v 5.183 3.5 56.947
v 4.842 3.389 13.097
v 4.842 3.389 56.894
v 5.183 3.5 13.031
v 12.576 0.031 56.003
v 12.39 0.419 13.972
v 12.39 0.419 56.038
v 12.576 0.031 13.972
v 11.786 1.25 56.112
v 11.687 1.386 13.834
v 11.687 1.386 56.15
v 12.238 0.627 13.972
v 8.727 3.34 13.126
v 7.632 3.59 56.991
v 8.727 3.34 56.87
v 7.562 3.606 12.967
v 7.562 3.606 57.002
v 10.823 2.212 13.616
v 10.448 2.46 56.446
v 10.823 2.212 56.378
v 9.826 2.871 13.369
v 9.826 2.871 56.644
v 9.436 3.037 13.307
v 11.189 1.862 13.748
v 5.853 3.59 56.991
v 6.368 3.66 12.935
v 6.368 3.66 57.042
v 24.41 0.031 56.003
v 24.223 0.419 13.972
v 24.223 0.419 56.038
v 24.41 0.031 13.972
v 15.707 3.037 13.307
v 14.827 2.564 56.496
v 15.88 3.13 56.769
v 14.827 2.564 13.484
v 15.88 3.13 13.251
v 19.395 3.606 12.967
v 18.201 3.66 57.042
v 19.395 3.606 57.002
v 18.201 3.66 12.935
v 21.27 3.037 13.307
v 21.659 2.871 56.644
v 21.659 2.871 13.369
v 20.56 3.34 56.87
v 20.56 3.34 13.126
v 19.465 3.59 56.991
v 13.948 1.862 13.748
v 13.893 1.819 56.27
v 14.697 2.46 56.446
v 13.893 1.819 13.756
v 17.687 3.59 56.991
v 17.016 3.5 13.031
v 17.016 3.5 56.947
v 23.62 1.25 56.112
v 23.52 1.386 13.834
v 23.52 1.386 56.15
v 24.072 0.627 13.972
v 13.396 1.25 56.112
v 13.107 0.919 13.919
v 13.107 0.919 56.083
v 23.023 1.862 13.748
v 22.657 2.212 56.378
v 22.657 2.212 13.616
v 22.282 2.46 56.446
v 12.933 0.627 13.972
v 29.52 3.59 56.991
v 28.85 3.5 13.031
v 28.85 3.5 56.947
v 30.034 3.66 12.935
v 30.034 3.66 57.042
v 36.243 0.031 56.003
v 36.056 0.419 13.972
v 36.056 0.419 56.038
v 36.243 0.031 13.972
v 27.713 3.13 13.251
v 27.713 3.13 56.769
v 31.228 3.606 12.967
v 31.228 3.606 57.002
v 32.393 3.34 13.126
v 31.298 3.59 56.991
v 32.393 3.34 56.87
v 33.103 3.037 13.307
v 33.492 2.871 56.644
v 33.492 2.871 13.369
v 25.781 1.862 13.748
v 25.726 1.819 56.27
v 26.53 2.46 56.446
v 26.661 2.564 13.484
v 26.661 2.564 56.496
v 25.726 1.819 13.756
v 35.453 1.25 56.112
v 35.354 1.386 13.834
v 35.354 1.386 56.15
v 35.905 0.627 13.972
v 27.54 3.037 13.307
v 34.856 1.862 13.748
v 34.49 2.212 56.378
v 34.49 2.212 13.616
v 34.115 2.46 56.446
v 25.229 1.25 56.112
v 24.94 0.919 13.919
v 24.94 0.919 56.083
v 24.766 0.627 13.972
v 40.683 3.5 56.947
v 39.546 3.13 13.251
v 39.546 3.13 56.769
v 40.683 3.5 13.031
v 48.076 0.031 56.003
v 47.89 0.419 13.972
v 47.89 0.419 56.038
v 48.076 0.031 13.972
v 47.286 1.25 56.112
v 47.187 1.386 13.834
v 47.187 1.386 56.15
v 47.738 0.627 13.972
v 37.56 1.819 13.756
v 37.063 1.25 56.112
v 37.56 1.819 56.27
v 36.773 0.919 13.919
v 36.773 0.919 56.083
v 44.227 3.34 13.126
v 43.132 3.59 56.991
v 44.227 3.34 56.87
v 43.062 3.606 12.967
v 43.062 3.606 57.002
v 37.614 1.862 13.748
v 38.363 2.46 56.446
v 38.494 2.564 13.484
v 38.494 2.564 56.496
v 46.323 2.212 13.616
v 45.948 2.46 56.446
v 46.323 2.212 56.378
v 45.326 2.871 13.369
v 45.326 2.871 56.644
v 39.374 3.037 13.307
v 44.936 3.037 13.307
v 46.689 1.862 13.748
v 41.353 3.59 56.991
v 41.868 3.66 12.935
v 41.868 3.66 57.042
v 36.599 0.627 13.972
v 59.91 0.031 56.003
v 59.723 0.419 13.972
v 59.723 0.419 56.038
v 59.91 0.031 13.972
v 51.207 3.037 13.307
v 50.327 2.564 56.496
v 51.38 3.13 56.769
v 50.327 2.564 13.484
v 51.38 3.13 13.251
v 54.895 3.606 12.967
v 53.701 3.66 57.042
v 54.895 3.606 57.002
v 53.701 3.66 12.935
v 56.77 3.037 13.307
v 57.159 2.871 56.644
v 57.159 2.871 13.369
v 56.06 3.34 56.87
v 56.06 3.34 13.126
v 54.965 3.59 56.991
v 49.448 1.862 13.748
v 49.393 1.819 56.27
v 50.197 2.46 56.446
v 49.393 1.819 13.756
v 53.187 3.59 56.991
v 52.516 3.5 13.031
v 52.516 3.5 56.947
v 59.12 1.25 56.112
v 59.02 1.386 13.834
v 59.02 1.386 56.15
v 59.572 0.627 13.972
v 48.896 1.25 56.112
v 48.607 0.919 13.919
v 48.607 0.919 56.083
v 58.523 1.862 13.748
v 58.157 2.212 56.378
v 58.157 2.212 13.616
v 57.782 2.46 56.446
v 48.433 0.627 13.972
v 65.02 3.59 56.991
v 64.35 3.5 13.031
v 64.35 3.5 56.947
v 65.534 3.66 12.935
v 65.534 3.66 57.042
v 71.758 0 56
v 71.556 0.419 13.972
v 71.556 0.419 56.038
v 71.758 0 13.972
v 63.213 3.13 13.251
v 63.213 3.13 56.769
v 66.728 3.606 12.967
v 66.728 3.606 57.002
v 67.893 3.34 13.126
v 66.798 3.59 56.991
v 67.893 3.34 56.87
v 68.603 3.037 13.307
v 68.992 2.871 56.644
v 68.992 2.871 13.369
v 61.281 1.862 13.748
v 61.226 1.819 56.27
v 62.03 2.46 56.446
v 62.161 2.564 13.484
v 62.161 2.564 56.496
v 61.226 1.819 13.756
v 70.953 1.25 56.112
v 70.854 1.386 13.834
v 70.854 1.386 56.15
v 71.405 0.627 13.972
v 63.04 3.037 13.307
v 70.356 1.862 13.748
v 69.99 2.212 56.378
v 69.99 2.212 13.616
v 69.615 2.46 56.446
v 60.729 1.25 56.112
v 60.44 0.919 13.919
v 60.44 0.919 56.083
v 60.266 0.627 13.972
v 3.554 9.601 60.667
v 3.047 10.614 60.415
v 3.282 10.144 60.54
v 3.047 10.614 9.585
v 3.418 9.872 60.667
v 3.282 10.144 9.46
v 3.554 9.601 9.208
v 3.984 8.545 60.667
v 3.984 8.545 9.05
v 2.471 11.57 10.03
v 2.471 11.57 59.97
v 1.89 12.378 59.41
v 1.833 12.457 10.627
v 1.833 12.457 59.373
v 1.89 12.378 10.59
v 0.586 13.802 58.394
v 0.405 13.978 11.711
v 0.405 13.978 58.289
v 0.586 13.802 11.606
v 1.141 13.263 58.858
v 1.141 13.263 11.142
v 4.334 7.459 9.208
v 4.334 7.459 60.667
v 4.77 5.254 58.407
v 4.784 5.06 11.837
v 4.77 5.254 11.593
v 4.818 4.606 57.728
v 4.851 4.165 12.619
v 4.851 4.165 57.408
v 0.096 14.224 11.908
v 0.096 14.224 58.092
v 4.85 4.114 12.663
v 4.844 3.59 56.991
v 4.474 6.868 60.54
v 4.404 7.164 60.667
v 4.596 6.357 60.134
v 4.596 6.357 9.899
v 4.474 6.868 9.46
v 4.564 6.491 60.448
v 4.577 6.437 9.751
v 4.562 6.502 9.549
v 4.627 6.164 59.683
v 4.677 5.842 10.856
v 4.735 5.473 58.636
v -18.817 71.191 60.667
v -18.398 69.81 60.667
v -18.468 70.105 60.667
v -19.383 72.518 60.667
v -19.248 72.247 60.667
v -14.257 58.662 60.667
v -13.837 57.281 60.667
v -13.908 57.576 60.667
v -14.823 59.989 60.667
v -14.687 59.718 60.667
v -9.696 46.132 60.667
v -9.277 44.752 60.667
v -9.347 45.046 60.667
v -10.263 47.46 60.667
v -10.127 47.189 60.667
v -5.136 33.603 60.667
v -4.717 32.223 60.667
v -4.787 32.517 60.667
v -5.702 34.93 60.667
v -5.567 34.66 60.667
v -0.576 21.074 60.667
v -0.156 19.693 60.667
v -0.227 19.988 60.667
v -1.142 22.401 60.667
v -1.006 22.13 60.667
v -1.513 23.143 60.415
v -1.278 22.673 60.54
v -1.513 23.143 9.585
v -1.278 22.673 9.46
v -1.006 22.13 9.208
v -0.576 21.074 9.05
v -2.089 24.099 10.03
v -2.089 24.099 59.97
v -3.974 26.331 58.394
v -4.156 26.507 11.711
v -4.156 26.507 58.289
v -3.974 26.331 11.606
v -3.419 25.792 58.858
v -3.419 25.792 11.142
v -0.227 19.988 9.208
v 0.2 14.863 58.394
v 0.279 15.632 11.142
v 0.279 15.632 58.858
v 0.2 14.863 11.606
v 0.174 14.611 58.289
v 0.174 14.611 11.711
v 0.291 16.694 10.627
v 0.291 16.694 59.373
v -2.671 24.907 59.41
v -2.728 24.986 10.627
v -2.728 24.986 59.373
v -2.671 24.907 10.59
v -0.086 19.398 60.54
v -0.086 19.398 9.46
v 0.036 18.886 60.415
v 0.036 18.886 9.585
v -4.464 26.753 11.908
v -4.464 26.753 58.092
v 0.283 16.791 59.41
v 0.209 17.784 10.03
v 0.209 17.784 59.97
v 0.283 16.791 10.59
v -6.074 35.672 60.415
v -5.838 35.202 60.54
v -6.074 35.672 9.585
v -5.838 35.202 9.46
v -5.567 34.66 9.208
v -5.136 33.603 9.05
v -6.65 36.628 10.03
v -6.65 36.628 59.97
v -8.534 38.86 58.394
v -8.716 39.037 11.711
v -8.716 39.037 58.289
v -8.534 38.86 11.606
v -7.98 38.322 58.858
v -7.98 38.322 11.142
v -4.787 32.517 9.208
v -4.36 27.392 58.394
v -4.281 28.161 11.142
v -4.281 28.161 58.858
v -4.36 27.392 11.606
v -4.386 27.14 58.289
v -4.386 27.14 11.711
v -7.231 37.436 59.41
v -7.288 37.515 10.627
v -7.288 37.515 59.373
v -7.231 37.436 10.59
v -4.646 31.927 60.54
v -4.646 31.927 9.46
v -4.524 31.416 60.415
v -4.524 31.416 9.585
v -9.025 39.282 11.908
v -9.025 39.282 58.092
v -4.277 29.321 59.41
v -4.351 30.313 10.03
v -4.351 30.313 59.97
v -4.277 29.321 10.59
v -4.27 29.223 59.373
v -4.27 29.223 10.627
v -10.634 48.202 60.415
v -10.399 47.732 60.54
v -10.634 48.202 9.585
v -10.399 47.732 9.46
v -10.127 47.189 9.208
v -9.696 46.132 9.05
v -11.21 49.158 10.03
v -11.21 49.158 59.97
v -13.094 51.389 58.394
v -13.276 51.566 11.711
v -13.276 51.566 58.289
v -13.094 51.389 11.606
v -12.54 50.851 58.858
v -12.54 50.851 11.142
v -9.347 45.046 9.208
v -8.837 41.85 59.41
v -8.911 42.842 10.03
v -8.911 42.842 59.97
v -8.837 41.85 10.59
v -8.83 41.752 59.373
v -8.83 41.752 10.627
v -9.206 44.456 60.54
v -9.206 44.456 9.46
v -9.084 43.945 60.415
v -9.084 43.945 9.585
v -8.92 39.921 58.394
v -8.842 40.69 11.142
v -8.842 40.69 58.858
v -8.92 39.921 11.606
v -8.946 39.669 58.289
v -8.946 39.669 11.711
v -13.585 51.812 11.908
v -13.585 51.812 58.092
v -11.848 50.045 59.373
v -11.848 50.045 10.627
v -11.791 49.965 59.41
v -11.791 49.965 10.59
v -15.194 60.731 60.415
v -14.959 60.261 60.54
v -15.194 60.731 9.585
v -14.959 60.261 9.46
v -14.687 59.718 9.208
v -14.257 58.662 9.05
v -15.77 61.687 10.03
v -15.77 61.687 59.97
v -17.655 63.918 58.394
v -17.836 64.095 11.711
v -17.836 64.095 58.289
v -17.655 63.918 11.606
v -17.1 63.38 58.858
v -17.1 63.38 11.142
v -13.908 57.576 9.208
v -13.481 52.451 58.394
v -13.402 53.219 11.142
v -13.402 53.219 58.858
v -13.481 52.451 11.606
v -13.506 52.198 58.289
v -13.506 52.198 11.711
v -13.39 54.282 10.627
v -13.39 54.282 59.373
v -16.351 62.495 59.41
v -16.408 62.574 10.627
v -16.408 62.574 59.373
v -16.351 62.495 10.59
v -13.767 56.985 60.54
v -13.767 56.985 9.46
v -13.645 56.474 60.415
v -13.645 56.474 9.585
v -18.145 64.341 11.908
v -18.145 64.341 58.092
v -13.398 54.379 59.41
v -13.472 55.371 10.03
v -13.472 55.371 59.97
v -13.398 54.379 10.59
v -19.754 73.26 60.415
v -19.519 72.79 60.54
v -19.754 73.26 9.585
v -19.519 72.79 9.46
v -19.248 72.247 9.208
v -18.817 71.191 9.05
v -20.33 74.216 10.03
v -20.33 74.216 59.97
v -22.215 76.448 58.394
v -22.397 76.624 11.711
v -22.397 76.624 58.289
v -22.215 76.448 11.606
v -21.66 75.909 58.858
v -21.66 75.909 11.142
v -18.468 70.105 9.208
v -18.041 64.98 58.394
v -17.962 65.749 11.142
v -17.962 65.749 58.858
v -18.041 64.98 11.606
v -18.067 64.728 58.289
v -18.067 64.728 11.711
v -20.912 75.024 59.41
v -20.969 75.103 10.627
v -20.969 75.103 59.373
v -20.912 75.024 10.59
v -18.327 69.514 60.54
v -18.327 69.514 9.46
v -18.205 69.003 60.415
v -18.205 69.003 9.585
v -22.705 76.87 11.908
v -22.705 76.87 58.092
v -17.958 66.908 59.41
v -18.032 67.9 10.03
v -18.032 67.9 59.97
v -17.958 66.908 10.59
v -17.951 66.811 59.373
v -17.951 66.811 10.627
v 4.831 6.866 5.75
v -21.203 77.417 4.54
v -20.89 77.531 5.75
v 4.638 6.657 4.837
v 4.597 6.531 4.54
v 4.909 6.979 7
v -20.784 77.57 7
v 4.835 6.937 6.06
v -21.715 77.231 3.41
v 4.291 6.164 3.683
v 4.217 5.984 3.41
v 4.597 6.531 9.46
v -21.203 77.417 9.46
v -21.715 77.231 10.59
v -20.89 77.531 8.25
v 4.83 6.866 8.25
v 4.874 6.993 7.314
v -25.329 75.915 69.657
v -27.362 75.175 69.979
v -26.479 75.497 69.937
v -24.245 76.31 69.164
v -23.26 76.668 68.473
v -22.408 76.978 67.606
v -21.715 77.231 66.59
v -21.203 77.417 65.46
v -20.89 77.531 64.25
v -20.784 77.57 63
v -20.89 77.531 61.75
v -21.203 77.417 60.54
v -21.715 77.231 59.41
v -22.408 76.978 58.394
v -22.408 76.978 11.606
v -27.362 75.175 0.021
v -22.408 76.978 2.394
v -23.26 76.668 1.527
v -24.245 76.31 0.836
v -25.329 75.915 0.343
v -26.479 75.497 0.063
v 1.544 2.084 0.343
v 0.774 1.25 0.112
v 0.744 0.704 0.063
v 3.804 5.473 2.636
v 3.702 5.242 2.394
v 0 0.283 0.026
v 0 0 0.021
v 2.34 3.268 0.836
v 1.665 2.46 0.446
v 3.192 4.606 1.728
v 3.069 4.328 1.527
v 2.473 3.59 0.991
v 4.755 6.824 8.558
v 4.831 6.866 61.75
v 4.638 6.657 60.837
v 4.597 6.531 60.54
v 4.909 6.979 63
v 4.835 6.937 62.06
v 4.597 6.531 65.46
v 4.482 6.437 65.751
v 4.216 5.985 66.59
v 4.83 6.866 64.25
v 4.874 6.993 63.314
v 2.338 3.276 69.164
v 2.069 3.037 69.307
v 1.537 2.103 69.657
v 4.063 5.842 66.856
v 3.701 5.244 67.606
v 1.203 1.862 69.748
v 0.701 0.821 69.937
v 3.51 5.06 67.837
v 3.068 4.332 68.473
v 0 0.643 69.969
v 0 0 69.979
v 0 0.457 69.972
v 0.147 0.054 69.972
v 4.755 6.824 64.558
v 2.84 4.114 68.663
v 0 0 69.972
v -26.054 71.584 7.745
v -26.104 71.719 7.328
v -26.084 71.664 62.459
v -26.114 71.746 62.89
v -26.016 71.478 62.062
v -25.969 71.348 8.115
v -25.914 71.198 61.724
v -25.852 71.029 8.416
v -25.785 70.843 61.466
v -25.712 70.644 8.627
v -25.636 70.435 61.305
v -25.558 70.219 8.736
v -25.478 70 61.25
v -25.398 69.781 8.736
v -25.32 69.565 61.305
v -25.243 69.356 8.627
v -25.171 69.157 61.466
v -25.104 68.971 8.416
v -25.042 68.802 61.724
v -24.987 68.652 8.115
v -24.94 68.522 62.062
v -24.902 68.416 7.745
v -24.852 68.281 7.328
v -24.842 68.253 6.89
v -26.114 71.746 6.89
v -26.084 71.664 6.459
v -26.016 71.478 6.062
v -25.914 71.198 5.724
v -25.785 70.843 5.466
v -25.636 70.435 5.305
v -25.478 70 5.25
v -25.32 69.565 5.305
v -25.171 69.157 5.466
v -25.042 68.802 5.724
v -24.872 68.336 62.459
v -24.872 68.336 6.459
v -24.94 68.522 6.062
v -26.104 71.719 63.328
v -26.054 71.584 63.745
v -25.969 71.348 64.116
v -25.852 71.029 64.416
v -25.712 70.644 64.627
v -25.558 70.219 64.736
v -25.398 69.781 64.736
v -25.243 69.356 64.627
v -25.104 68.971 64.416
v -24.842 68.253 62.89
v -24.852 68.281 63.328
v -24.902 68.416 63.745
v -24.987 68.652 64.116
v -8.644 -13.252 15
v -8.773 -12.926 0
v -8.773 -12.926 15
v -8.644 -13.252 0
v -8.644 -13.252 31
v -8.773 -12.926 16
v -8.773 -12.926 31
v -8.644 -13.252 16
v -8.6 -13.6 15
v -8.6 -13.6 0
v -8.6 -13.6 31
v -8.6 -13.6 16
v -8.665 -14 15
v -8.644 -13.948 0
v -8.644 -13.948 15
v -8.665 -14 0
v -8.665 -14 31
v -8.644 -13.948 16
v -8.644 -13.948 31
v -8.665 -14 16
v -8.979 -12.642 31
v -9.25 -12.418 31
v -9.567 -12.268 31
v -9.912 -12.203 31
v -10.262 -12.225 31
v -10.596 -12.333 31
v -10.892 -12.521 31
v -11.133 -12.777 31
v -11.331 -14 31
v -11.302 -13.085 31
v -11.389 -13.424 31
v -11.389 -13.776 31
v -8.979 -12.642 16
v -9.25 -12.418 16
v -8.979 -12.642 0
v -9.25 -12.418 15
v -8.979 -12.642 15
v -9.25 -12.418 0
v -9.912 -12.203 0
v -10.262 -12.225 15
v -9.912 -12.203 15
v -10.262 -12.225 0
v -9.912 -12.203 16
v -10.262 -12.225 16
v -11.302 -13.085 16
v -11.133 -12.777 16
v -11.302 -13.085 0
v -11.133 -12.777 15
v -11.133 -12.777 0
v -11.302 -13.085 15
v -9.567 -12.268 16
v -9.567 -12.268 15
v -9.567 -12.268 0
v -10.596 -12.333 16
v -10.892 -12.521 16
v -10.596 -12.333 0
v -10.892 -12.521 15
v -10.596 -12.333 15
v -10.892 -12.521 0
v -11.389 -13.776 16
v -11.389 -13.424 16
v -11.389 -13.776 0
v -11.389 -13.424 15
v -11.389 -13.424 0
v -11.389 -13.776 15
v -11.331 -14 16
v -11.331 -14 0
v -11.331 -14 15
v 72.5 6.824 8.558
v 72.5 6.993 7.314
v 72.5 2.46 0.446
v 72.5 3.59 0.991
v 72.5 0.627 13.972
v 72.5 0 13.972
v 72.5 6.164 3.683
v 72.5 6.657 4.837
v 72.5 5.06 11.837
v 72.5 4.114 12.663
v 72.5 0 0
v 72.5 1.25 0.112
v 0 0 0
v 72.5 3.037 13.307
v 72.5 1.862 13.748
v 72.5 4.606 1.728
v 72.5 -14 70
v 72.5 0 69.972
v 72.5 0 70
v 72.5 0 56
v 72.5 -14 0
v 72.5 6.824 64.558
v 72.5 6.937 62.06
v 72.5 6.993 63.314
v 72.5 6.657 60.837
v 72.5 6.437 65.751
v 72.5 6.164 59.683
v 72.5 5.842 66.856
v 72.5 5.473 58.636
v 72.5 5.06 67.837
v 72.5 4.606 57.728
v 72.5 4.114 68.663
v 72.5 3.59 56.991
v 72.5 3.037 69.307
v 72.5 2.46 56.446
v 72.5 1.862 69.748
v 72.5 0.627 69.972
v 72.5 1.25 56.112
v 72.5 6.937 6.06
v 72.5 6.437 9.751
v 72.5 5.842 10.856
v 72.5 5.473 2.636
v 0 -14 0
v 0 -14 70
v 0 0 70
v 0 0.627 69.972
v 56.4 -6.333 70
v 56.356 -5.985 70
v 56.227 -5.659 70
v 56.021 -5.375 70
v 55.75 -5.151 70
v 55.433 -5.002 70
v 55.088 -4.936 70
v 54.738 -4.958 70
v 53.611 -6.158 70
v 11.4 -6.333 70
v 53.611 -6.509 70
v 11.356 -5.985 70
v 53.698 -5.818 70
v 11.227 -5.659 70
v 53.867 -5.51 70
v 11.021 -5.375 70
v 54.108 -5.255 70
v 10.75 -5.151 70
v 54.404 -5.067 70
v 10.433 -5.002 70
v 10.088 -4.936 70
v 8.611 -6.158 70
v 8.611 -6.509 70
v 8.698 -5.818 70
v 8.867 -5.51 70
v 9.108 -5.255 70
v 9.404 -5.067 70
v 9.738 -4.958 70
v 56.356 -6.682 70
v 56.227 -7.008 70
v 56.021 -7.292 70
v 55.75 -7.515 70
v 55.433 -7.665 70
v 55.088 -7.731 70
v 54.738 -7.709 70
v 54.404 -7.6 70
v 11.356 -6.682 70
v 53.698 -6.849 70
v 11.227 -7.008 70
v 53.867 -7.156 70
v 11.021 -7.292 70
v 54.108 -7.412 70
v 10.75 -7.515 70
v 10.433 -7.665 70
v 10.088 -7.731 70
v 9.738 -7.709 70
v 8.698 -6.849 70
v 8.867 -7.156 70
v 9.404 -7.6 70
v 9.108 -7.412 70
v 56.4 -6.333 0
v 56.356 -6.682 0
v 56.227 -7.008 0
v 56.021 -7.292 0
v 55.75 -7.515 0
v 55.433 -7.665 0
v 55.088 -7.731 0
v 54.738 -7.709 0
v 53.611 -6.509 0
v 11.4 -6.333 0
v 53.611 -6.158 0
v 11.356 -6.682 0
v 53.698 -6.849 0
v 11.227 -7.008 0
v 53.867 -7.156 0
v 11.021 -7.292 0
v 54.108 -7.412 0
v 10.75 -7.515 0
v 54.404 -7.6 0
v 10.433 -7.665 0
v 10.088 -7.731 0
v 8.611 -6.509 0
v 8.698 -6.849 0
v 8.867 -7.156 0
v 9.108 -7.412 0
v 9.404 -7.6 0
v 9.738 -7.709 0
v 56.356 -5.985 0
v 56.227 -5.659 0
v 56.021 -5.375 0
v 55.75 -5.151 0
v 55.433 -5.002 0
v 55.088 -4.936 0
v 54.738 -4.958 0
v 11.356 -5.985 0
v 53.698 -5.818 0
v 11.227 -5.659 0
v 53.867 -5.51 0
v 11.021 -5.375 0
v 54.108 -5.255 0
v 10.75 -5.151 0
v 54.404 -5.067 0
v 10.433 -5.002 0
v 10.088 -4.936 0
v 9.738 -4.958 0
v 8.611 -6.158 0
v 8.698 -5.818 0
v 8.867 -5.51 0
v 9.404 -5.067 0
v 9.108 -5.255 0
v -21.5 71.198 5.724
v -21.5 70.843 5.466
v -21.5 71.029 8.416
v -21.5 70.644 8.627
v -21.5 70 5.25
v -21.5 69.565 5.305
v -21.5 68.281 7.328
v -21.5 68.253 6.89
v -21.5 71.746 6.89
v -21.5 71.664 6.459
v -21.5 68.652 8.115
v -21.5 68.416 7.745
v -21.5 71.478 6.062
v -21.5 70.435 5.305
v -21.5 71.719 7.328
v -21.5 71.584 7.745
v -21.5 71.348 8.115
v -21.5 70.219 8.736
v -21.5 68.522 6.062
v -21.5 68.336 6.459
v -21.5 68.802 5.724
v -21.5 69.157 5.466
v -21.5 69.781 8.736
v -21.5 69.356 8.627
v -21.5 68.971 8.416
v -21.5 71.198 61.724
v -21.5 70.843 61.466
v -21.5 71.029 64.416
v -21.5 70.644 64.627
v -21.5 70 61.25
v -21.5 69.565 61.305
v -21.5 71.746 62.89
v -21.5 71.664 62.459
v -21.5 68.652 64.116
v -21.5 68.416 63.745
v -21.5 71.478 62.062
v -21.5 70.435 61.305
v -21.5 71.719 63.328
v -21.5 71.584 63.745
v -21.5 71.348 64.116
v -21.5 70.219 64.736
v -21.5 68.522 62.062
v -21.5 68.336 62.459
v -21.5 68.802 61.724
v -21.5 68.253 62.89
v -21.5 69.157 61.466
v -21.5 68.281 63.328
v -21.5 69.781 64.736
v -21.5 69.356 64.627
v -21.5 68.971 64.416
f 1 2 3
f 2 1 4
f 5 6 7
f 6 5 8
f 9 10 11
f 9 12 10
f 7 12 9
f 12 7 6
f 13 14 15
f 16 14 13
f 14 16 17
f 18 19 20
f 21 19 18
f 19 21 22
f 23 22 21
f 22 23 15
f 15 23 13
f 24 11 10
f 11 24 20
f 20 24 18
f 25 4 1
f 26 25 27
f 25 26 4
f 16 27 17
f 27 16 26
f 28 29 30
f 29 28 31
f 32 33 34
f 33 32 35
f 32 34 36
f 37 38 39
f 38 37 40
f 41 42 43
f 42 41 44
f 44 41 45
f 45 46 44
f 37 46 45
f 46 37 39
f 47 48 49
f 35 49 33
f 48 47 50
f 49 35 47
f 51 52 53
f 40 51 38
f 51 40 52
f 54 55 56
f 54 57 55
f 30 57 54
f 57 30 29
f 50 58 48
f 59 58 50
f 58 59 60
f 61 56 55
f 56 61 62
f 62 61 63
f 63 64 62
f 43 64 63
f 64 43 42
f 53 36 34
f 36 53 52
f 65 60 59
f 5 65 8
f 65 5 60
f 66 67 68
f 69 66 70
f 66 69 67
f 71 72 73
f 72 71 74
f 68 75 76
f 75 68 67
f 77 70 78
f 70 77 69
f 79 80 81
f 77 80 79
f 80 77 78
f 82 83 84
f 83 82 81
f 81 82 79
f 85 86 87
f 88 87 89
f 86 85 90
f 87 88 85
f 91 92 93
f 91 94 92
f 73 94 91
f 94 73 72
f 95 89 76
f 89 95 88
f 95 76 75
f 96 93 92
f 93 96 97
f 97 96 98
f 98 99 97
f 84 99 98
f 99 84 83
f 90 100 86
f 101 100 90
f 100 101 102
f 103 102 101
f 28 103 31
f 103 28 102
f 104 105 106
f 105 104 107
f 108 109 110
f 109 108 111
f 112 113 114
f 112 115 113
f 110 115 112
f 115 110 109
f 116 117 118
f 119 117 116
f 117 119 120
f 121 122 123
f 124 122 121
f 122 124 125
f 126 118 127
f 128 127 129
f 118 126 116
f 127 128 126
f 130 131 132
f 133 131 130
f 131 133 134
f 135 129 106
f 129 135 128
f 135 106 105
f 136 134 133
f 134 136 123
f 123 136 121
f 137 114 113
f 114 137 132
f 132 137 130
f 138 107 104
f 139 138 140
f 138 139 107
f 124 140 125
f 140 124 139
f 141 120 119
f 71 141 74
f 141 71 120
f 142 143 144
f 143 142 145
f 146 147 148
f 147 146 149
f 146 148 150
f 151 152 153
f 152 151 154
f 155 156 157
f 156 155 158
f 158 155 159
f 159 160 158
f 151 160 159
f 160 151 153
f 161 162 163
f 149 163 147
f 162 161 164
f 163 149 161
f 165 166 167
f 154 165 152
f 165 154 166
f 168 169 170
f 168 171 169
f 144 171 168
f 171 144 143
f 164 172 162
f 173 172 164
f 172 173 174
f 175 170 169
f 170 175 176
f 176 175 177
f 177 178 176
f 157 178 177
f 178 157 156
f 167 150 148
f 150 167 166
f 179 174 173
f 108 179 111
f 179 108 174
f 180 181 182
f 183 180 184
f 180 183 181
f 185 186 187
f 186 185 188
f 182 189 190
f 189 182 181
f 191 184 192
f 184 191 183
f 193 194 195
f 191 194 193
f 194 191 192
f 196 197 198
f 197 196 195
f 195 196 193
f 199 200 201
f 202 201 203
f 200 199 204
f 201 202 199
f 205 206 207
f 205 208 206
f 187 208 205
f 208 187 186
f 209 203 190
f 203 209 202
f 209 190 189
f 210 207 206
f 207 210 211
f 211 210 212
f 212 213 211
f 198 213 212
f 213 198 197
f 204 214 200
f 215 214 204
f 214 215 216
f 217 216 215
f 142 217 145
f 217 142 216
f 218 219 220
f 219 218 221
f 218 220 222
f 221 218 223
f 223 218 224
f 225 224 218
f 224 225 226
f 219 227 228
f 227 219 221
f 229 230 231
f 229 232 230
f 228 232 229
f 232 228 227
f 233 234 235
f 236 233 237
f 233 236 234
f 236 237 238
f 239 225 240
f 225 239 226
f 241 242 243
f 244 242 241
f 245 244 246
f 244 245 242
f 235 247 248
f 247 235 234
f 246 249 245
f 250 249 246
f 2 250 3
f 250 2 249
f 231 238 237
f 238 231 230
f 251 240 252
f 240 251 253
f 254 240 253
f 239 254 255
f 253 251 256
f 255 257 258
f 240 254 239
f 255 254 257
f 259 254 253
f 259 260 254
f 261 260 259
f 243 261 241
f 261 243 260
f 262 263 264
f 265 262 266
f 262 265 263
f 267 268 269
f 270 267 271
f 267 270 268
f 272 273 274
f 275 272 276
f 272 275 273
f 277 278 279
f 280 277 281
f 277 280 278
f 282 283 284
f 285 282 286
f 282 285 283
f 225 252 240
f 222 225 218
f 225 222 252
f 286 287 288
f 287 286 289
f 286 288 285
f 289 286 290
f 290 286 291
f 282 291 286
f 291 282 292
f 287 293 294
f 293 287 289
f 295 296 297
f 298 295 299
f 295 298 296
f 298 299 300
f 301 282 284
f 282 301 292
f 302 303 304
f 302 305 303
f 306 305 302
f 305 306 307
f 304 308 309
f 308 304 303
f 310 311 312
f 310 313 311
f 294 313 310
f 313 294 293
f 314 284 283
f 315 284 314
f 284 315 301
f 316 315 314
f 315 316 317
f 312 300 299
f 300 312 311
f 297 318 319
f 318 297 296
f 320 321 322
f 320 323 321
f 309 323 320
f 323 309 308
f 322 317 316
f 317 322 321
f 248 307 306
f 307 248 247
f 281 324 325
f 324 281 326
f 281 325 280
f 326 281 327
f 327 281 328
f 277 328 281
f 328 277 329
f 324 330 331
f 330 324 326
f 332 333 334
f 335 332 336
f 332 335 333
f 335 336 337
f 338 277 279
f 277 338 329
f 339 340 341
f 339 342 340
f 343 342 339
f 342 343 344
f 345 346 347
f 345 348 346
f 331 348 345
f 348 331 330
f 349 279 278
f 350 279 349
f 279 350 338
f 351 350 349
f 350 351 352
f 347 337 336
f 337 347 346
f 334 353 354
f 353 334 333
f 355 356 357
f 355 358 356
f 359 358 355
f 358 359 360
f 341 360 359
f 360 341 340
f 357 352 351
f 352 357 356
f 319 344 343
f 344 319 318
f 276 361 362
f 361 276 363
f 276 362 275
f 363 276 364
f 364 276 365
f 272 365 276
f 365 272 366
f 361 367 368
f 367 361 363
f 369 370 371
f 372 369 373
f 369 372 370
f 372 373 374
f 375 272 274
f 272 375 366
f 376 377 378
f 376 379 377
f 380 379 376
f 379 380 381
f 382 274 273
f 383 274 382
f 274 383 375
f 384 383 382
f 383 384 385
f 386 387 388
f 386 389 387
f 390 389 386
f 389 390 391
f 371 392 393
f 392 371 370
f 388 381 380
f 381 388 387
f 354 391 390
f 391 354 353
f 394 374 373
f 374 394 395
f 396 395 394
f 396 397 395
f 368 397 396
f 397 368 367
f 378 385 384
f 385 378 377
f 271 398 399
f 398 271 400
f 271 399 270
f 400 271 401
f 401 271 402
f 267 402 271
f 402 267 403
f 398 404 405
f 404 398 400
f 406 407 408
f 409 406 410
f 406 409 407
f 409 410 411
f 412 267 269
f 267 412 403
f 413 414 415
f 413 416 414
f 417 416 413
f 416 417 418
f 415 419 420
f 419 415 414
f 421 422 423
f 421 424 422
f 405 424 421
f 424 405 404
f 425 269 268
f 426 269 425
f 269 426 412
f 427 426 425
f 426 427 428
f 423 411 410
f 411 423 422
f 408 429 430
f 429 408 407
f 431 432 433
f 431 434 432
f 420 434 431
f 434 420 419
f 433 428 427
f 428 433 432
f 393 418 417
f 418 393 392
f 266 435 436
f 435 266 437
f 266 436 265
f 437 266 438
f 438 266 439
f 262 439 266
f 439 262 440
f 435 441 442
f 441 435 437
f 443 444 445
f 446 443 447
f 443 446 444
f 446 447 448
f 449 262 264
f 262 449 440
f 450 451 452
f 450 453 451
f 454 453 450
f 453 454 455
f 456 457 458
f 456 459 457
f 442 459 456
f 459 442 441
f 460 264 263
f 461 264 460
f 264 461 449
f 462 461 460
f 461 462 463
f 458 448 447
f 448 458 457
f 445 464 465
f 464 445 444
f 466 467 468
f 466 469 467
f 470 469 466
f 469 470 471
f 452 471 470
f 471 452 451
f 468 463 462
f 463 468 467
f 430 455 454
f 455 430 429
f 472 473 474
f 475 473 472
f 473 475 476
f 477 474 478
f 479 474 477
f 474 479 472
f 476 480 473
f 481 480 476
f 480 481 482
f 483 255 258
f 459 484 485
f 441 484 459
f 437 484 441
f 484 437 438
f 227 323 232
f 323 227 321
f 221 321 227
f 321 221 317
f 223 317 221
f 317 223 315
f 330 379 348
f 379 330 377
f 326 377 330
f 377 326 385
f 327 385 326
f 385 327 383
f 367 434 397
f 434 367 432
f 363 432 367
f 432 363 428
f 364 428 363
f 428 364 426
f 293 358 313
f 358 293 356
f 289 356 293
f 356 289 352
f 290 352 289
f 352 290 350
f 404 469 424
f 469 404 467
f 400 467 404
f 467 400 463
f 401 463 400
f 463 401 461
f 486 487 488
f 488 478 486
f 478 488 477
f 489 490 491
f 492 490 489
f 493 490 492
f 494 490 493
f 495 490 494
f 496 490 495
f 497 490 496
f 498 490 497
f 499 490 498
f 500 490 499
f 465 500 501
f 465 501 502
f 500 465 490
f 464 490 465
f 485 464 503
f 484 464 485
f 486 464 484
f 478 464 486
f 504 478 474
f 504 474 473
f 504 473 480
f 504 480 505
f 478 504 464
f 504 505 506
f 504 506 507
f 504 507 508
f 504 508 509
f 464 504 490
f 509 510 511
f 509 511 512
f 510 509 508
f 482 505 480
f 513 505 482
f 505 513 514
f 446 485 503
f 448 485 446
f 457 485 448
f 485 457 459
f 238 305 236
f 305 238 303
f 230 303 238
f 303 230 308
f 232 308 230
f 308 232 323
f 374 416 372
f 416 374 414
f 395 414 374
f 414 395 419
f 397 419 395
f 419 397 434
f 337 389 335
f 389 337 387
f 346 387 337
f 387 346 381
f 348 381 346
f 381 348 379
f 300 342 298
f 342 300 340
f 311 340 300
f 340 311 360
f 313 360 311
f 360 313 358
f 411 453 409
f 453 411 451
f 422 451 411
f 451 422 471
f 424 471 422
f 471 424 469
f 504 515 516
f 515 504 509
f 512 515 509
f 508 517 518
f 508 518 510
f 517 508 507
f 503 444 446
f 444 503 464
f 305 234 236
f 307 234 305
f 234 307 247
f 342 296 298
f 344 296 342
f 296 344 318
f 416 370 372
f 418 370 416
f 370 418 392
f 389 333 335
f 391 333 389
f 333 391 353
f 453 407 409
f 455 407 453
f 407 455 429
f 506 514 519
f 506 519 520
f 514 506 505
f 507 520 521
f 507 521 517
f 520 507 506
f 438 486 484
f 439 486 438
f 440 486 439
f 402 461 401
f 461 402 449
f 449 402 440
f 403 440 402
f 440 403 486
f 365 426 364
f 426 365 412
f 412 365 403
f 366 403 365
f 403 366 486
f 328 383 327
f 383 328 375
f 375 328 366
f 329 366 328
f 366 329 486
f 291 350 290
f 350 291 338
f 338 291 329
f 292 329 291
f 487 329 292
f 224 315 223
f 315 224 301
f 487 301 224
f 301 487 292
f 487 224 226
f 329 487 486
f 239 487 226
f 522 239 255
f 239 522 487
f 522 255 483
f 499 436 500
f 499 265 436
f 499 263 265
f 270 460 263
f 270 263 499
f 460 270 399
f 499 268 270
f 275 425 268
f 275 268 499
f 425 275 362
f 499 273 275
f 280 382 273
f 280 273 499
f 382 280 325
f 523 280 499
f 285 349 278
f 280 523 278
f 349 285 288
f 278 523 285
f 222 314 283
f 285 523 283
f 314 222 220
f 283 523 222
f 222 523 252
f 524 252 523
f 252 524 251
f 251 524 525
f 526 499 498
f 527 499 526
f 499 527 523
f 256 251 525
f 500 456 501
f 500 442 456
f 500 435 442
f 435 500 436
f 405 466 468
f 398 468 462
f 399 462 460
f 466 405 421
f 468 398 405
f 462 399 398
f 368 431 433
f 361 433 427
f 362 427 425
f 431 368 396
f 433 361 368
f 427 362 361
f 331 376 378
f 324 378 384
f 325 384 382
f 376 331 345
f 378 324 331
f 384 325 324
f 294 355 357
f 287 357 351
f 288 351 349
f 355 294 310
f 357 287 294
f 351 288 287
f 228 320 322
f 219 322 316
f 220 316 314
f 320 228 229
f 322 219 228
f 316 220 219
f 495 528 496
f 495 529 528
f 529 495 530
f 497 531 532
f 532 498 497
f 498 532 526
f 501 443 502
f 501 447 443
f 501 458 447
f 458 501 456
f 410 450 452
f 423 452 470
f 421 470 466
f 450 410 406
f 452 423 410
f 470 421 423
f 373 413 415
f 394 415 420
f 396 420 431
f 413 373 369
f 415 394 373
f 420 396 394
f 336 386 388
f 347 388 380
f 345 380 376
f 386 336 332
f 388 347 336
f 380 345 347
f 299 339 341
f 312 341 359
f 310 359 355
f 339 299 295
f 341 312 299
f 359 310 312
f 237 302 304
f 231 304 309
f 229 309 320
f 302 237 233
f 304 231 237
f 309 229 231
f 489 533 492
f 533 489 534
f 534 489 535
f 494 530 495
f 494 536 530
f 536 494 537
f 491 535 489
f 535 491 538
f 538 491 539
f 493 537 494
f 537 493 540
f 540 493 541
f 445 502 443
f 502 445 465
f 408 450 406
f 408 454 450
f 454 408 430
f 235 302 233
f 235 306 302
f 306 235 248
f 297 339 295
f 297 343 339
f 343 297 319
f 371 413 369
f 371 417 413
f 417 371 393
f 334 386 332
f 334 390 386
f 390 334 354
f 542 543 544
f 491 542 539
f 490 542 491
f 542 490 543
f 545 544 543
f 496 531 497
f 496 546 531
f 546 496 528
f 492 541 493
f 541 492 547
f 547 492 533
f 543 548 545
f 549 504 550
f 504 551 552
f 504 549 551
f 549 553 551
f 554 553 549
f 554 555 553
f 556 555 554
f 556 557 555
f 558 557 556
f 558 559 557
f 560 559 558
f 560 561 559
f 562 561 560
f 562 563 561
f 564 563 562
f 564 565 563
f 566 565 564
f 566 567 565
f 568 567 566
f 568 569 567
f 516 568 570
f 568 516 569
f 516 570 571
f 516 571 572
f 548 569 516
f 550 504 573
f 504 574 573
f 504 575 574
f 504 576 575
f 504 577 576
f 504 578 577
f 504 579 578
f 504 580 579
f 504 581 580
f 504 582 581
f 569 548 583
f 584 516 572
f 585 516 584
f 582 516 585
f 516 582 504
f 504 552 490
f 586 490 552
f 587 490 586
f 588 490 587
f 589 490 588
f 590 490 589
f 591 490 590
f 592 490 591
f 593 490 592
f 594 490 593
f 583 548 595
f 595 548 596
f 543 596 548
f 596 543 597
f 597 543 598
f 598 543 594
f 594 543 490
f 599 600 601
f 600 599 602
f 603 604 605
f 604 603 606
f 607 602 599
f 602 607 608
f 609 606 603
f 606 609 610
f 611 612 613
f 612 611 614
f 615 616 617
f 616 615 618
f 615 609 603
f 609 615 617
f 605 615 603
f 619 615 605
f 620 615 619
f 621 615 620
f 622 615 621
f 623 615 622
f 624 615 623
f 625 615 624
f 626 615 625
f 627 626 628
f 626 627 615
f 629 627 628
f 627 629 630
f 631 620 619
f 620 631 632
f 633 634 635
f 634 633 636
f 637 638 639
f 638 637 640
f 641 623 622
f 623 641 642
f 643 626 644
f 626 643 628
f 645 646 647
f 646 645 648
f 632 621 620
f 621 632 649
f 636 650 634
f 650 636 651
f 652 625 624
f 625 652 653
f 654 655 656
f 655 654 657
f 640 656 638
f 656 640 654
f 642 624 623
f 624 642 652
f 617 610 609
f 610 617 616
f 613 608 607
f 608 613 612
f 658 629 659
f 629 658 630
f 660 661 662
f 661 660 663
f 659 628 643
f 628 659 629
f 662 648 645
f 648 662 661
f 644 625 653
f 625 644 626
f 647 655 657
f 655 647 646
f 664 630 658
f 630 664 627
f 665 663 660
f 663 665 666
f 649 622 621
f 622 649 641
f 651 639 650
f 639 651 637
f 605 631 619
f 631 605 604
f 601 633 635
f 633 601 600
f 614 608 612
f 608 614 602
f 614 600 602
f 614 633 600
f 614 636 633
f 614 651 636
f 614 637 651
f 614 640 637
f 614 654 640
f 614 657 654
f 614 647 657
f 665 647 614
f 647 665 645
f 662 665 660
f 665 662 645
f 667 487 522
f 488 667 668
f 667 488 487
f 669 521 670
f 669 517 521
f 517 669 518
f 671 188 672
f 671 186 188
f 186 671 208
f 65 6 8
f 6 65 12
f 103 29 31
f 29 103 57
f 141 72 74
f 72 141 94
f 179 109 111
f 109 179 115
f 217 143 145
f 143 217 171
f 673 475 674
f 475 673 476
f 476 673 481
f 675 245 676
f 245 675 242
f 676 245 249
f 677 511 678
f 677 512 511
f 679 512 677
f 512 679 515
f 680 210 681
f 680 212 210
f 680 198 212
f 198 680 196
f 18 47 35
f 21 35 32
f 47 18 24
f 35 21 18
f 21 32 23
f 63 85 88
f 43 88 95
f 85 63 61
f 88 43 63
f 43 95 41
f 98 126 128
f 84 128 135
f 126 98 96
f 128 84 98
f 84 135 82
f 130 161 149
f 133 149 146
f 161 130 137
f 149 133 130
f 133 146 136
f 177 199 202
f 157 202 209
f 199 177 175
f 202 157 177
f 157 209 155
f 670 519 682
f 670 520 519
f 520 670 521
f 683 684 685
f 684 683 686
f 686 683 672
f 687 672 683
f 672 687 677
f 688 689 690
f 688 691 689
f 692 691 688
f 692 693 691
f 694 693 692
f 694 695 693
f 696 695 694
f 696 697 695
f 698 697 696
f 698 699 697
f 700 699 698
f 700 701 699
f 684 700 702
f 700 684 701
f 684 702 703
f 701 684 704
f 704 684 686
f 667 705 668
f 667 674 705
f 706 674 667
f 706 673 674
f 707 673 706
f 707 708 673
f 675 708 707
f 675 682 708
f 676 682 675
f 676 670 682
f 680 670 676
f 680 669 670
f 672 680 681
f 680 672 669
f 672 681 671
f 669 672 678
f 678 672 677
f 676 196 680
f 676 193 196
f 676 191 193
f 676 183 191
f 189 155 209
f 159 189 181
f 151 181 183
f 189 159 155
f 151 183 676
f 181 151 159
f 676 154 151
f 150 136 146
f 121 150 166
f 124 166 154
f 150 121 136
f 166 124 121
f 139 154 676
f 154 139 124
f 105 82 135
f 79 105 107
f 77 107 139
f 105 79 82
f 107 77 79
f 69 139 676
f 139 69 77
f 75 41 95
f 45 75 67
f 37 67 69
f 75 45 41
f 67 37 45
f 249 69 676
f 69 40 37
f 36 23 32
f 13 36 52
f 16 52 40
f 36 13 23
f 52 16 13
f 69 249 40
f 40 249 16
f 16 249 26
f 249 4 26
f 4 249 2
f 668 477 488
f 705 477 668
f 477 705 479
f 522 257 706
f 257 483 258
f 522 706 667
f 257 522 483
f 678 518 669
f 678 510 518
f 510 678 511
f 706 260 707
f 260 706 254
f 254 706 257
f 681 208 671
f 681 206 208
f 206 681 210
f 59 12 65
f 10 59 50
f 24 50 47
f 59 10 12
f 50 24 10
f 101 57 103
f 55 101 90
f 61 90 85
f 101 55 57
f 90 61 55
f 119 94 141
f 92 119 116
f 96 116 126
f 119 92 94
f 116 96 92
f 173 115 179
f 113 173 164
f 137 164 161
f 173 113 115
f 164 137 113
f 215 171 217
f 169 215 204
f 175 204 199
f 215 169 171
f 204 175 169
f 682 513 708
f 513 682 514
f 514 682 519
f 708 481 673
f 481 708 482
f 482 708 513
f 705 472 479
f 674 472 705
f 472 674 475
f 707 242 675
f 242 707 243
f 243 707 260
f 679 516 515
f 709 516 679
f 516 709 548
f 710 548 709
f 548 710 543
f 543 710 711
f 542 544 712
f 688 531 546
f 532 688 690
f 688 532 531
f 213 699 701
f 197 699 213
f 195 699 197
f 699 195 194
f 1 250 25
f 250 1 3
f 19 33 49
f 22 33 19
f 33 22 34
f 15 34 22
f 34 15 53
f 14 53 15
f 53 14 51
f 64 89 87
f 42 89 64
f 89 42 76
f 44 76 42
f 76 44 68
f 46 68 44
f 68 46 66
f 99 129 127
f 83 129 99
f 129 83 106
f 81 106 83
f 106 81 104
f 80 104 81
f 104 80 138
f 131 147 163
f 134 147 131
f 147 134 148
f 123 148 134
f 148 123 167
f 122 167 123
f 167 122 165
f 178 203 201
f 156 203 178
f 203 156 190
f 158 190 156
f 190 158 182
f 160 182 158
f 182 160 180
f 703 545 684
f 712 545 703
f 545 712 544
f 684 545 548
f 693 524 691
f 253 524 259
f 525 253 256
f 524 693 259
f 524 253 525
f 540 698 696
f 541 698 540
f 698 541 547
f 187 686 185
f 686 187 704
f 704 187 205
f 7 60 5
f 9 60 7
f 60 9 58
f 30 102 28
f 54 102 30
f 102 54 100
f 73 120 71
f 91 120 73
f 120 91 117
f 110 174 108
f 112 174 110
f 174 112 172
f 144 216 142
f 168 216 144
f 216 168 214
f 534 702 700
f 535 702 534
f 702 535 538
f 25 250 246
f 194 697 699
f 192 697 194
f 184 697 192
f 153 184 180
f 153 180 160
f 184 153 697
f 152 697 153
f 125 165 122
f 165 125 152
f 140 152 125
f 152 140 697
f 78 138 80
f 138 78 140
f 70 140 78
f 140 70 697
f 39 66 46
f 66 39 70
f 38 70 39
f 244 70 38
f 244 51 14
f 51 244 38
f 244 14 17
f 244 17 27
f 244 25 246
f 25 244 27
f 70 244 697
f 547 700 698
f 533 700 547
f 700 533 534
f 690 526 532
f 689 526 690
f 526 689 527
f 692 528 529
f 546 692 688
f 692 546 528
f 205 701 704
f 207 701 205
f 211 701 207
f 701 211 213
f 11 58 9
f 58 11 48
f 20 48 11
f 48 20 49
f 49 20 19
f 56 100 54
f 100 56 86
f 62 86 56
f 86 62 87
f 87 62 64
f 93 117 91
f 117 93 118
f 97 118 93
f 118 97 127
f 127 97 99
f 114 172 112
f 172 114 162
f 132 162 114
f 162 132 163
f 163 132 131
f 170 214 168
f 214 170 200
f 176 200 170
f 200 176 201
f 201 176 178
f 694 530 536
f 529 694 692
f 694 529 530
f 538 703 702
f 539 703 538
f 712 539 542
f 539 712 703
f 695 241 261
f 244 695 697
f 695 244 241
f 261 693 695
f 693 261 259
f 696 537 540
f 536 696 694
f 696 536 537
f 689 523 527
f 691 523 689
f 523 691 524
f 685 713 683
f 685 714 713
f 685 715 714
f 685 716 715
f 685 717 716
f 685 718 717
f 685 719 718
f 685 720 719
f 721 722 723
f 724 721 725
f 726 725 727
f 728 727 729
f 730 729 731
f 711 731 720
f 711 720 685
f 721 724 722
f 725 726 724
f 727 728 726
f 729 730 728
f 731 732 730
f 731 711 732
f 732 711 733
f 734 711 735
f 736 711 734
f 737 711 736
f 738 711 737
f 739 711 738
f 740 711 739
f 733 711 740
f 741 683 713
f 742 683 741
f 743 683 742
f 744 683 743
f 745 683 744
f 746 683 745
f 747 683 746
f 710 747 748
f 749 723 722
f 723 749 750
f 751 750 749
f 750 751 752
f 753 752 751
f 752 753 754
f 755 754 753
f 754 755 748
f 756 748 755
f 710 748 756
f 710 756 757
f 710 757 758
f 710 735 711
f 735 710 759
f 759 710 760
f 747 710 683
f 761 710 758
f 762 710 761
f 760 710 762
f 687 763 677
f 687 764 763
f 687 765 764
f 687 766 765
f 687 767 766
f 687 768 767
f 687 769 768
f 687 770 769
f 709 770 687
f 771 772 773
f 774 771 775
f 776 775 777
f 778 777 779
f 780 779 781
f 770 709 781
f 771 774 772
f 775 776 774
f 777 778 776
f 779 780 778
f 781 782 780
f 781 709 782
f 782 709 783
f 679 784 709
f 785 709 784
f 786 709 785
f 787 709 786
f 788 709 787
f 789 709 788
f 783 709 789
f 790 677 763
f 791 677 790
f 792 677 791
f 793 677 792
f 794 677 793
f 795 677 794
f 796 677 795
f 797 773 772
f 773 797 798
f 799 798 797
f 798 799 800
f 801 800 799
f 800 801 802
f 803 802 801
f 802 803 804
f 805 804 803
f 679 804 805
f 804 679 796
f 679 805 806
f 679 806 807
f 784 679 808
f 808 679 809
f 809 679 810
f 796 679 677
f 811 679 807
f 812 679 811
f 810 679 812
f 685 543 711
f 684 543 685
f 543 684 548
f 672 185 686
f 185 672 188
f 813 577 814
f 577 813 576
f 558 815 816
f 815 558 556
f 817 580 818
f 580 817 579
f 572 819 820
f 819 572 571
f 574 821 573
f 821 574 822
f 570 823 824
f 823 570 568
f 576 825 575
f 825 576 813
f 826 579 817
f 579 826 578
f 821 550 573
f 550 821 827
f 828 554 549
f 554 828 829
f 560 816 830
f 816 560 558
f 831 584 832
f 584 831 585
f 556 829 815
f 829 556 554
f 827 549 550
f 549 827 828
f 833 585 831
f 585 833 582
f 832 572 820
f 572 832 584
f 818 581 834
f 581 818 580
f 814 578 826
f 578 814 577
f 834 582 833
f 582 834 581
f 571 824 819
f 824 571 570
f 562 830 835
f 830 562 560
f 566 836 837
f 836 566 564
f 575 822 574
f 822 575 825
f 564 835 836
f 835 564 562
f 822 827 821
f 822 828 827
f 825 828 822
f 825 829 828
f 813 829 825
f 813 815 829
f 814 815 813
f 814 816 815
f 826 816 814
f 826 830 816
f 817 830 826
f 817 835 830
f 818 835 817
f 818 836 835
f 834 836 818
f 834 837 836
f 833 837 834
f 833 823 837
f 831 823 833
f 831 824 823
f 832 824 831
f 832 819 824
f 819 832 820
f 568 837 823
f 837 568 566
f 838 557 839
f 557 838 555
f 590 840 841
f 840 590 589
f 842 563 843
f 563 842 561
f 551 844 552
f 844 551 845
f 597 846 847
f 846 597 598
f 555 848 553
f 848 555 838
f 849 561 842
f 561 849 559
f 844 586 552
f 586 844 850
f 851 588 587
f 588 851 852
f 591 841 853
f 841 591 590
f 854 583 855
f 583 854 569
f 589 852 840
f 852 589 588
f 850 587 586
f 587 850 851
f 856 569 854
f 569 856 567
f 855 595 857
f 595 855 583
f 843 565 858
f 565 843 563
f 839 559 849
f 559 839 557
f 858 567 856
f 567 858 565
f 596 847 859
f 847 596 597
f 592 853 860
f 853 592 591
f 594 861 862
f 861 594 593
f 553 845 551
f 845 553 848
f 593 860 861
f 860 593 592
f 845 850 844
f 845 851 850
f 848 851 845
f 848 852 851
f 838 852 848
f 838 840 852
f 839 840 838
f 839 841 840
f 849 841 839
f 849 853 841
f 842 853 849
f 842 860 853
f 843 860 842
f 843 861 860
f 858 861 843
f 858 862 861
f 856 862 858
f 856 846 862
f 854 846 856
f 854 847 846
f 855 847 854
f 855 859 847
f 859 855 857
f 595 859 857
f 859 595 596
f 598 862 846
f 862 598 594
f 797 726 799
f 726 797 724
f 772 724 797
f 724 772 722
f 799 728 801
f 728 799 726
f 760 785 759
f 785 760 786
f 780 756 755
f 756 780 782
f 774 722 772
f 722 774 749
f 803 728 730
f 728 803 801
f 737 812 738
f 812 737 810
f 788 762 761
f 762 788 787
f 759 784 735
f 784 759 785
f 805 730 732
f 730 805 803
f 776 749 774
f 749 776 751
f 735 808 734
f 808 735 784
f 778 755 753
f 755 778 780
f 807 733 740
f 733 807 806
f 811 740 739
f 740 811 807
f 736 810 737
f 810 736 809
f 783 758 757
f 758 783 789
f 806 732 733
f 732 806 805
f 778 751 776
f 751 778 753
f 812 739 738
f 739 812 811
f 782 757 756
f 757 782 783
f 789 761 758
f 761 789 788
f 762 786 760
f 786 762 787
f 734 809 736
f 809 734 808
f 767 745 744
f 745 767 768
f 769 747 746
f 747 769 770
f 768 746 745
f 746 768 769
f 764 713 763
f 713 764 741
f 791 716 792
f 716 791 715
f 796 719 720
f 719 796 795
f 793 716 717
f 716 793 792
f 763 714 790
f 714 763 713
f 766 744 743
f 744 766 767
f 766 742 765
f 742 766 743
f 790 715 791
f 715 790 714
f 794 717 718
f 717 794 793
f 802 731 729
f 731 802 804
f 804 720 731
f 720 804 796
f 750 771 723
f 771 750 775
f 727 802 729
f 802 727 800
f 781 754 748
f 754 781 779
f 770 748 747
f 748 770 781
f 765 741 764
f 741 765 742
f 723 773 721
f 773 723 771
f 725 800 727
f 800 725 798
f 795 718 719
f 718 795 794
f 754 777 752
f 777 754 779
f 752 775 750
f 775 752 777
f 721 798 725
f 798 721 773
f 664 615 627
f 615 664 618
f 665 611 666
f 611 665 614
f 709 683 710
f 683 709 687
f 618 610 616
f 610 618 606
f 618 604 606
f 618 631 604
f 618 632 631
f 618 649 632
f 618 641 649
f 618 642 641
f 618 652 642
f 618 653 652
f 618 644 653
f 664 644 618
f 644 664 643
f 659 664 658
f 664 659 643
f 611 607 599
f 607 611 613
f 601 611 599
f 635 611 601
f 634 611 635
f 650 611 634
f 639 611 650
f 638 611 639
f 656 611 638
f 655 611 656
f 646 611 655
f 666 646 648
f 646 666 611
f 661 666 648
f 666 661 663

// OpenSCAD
/**
 * WheelChair.scad
 * 
 * Created by Diego Viejo on 17/Dec/2020
 * 
 * Intended as a Mattel's Barbie complement
 * 
 */

Height = 6;
seatLength = 80;
seatWidth = 70;
seatHeight = 80;
slopeAngle = 20;

bigAxlePos = -20;
axleDist = 45;
bottom = -51;

module lateral()
difference()
{
    union()
    {
        %rotate(slopeAngle) cube([5, 80, Height]);
        
        hull()
        {
//            translate([0, -20, -Height/2]) cube([20, 5+20, Height]);
            translate([seatLength-Height/2, bottom-3, 0]) rotate([-90, 0, 0]) cylinder(d=Height, h=5-bottom+3, $fn=30);
            translate([-10, bottom-3, 0]) rotate([-90, 0, 0]) cylinder(d=Height, h=5-bottom+3, $fn=30);
        }
        
        translate([-5-5, 40+5 -Height/2, 0]) rotate([0, 90, 0]) cylinder(d=Height, h=seatLength+10-Height+3, $fn=30);
        translate([seatLength-Height/2, 0, 0]) rotate([-90, 0, 0]) cylinder(d=Height, h=40+2.5, $fn=30);
        translate([seatLength-Height/2, 40+2, 0]) sphere(d=Height, $fn=30);
        translate([-10, 0, 0]) rotate([-90, 0, 0]) cylinder(d=Height, h=40+2.5, $fn=30);
        translate([-10, 40+2, 0]) sphere(d=Height, $fn=30);
        
        //big wheel axle
        translate([-10, bigAxlePos, -Height/2]) cylinder(d=15, h=Height+1, $fn=30);
        
        //small wheel axle
        hull()
        {
            translate([seatLength-7, bigAxlePos-axleDist, -Height/2]) cylinder(d=12, h=Height, $fn=30);
            translate([seatLength-17, bottom -6/2, 0]) rotate([0, 90, 0]) cylinder(d=6, h=15, $fn=30);
        }
        translate([seatLength-7, bigAxlePos-axleDist, -Height/2]) cylinder(d=12, h=Height+1, $fn=30);
        
        //bottom
        translate([-20, bottom -6/2, 0]) rotate([0, 90, 0]) cylinder(d=6, h=seatLength+20-3, $fn=30);
        translate([seatLength-6/2, bottom-3, 0]) sphere(d=6, $fn=30);
        translate([-20, bottom-3, 0]) sphere(d=6, $fn=30);
        
        //leg
        translate([seatLength-3.5, 0, 0]) rotate(-90+slopeAngle+5) 
            rotate([0, 90, 0]) cylinder(d=6, h=75+3, $fn=30);
        hull()
        {
            translate([seatLength-Height-0.75, 0, 3]) rotate(slopeAngle+5) translate([0, -75, 0]) rotate([0, 90, 0]) cylinder(d=12, h=Height+2, $fn=20);
            translate([seatLength-3.5, 0, 0]) rotate(slopeAngle+5) translate([0, -75-3, 0]) sphere(d=Height, $fn=30);
            translate([seatLength-3.5, 0, 0]) rotate(slopeAngle+5) translate([0, -75+10, 0]) sphere(d=Height, $fn=30);
        }

    }
    
    //assembly holes
    translate([10, -10, -Height/2-1]) cylinder(d=3.5, h=Height+2, $fn=25);
    translate([10, -10, Height/2-3]) cylinder(d1=3, d2=7.5, h=3.5, $fn=25);
    translate([55, -10, -Height/2-1]) cylinder(d=3.5, h=Height+2, $fn=25);
    translate([55, -10, Height/2-3]) cylinder(d1=3, d2=7.5, h=3.5, $fn=25);
    
    //big wheel axle
    translate([-10, bigAxlePos, -Height/2-1]) cylinder(d=3, h=Height+5, $fn=20);
    //small wheel axle
    translate([seatLength-7, bigAxlePos-axleDist, -Height/2-1]) cylinder(d=3, h=Height+5, $fn=20);
    
    //under platform space
    hull()
    {
        translate([5, -20-15/2, -Height/2-5]) cylinder(d=15, h=Height+10, $fn=30);
        translate([seatLength-28, -20-20/2, -Height/2-5]) cylinder(d=20, h=Height+10, $fn=30);
        translate([-4, bottom+3, -Height/2-5]) cylinder(d=8, h=Height+10, $fn=30);
        translate([seatLength-25+(20-4)/2, bottom+1, -Height/2-5]) cylinder(d=4, h=Height+10, $fn=30);
    }
    
    //leg
    translate([seatLength-Height-0.75, 0, 3]) rotate(slopeAngle+5) 
        translate([-1, -75, 0]) 
            rotate([0, 90, 0]) cylinder(d=2.8, h=Height+2, $fn=20);
    translate([seatLength, 0, 0]) rotate(slopeAngle+5) translate([0, -72-3.75, -5])  cube([10, 20, 20]);

            
    //remove from the bottom to help printing
    translate([-100, -100, -10]) cube([300, 300, 10-Height/2+1]);
}


numRads = 9;
module bigWheel()
difference()
{
    cylinder(d=25+axleDist*2, h=Height, $fn=100);

    translate([0, 0, -1])
    difference()
    {
        cylinder(d=25+axleDist*2-Height*2, h=Height+2, $fn=50);
        
        {
            translate([0, 0, -1]) cylinder(d=17, h=Height+4, $fn=30);
            
            for(i=[0:numRads-1])
                rotate(i*360/numRads)
            translate([0, 0, Height/2]) rotate([-90, 0, 0]) cylinder(d=Height, h=(25+axleDist*2)/2 -2, $fn=30);
        }
    }
    
    //axle
    translate([0, 0, -1]) cylinder(d=3.65, h=Height+2, $fn=25);
}

module smallWheel()
difference()
{
    cylinder(d=25, h=5, $fn=50);
    //axle
    translate([0, 0, -1]) cylinder(d=3.65, h=Height+2, $fn=25);
}

footLength = 33;
module foot()
difference()
{
    hull()
    {
        cylinder(d=6, h=Height+2, $fn=35);
        translate([footLength, 0, 0]) cylinder(d=6, h=Height+2, $fn=35);
        translate([0, 15, 0]) cylinder(d=6, h=Height+2, $fn=35);
        translate([footLength, 15, 0]) cylinder(d=6, h=Height+2, $fn=35);
    }
    
    translate([footLength+3-4.75, -10, Height/2+1]) rotate([-90, 0, 0]) cylinder(d=3.5, h=50, $fn=25);
    
    translate([0, 0, -1])
    hull()
    {
        translate([footLength+3-7, 10, 0]) cylinder(d=10, h=Height+4, $fn=35);
        translate([footLength+3-7, 20, 0]) cylinder(d=10, h=Height+4, $fn=35);
        translate([footLength+7, 10, 0]) cylinder(d=10, h=Height+4, $fn=35);
    }
    
    translate([-5, -5 , Height]) cube([footLength-3.5, 25, 10]);
}

module chair()
difference()
{
    union()
    {
        translate([-10, -15+2.8/2, 0])
            cylinder(d=2.8, h=31, $fn=25);

        translate([0, 0, seatWidth/10]) rotate([0, 90, 0]) cylinder(d=seatWidth/5, h=seatLength-1.5*5, $fn=35);
        translate([0, 0, seatWidth-seatWidth/10]) rotate([0, 90, 0]) cylinder(d=seatWidth/5, h=seatLength-1.5*5, $fn=35);
        
        for(i=[0:5])
            translate([seatLength/12+i*(seatLength/6-1.5), -3, seatWidth/5-4])  cylinder(d=seatLength/6, h=seatWidth*2/3+4, $fn=35);
        
        translate([0, -15, 0]) cube([seatLength-1.5*5, 15, seatWidth]);
        
        rotate(slopeAngle)
        difference()
        {
            union()
            {
                translate([0, 0, seatWidth/10]) rotate([-90, 0, 0]) cylinder(d=seatWidth/5, h=seatHeight, $fn=35);
                translate([0, 0, seatWidth*9/10]) rotate([-90, 0, 0]) cylinder(d=seatWidth/5, h=seatHeight, $fn=35);
                for(i=[0:5])
                    translate([0, seatLength/12+i*seatLength/6, seatWidth/10]) scale([1, 1.5, 1]) cylinder(d=seatLength/6, h=seatWidth*2/3+7, $fn=55);
            }
            
            translate([-10, seatHeight, -10]) cube([100, 100, 100]);
            translate([-20, -10, -10]) cube([20, 100, 100]);
            
        }
    }
    
    //handles holes
    translate([-27, seatHeight-10, seatWidth/10]) rotate([0, 90, 0]) cylinder(d=3.5, h=5.5, $fn=25);
    translate([-27, seatHeight-10, seatWidth*9/10]) rotate([0, 90, 0]) cylinder(d=3.5, h=5.5, $fn=25);
    
    //assembly holes
    #translate([10, -10+seatLength/12-3, -30]) cylinder(d=2.8, h=120, $fn=25);
    #translate([55, -10+seatLength/12-3, -30]) cylinder(d=2.8, h=120, $fn=25);
    
    translate([-20, -20, -20]) cube([200, 6, 200]);
    translate([-20, -20, 15]) cube([15, 25, 1]);

}


*lateral();
//translate([0, -seatLength/12+3, -seatWidth-Height/2+1])
    chair()
*mirror([1, 0, 0]) lateral();

*translate([seatLength-7, bigAxlePos-axleDist, Height/2+1.5]) 
    smallWheel();
*translate([-10, bigAxlePos, Height/2+1.5]) 
    bigWheel();

//foot();
//translate([-20, 0, 0]) mirror([1, 0, 0]) foot();
